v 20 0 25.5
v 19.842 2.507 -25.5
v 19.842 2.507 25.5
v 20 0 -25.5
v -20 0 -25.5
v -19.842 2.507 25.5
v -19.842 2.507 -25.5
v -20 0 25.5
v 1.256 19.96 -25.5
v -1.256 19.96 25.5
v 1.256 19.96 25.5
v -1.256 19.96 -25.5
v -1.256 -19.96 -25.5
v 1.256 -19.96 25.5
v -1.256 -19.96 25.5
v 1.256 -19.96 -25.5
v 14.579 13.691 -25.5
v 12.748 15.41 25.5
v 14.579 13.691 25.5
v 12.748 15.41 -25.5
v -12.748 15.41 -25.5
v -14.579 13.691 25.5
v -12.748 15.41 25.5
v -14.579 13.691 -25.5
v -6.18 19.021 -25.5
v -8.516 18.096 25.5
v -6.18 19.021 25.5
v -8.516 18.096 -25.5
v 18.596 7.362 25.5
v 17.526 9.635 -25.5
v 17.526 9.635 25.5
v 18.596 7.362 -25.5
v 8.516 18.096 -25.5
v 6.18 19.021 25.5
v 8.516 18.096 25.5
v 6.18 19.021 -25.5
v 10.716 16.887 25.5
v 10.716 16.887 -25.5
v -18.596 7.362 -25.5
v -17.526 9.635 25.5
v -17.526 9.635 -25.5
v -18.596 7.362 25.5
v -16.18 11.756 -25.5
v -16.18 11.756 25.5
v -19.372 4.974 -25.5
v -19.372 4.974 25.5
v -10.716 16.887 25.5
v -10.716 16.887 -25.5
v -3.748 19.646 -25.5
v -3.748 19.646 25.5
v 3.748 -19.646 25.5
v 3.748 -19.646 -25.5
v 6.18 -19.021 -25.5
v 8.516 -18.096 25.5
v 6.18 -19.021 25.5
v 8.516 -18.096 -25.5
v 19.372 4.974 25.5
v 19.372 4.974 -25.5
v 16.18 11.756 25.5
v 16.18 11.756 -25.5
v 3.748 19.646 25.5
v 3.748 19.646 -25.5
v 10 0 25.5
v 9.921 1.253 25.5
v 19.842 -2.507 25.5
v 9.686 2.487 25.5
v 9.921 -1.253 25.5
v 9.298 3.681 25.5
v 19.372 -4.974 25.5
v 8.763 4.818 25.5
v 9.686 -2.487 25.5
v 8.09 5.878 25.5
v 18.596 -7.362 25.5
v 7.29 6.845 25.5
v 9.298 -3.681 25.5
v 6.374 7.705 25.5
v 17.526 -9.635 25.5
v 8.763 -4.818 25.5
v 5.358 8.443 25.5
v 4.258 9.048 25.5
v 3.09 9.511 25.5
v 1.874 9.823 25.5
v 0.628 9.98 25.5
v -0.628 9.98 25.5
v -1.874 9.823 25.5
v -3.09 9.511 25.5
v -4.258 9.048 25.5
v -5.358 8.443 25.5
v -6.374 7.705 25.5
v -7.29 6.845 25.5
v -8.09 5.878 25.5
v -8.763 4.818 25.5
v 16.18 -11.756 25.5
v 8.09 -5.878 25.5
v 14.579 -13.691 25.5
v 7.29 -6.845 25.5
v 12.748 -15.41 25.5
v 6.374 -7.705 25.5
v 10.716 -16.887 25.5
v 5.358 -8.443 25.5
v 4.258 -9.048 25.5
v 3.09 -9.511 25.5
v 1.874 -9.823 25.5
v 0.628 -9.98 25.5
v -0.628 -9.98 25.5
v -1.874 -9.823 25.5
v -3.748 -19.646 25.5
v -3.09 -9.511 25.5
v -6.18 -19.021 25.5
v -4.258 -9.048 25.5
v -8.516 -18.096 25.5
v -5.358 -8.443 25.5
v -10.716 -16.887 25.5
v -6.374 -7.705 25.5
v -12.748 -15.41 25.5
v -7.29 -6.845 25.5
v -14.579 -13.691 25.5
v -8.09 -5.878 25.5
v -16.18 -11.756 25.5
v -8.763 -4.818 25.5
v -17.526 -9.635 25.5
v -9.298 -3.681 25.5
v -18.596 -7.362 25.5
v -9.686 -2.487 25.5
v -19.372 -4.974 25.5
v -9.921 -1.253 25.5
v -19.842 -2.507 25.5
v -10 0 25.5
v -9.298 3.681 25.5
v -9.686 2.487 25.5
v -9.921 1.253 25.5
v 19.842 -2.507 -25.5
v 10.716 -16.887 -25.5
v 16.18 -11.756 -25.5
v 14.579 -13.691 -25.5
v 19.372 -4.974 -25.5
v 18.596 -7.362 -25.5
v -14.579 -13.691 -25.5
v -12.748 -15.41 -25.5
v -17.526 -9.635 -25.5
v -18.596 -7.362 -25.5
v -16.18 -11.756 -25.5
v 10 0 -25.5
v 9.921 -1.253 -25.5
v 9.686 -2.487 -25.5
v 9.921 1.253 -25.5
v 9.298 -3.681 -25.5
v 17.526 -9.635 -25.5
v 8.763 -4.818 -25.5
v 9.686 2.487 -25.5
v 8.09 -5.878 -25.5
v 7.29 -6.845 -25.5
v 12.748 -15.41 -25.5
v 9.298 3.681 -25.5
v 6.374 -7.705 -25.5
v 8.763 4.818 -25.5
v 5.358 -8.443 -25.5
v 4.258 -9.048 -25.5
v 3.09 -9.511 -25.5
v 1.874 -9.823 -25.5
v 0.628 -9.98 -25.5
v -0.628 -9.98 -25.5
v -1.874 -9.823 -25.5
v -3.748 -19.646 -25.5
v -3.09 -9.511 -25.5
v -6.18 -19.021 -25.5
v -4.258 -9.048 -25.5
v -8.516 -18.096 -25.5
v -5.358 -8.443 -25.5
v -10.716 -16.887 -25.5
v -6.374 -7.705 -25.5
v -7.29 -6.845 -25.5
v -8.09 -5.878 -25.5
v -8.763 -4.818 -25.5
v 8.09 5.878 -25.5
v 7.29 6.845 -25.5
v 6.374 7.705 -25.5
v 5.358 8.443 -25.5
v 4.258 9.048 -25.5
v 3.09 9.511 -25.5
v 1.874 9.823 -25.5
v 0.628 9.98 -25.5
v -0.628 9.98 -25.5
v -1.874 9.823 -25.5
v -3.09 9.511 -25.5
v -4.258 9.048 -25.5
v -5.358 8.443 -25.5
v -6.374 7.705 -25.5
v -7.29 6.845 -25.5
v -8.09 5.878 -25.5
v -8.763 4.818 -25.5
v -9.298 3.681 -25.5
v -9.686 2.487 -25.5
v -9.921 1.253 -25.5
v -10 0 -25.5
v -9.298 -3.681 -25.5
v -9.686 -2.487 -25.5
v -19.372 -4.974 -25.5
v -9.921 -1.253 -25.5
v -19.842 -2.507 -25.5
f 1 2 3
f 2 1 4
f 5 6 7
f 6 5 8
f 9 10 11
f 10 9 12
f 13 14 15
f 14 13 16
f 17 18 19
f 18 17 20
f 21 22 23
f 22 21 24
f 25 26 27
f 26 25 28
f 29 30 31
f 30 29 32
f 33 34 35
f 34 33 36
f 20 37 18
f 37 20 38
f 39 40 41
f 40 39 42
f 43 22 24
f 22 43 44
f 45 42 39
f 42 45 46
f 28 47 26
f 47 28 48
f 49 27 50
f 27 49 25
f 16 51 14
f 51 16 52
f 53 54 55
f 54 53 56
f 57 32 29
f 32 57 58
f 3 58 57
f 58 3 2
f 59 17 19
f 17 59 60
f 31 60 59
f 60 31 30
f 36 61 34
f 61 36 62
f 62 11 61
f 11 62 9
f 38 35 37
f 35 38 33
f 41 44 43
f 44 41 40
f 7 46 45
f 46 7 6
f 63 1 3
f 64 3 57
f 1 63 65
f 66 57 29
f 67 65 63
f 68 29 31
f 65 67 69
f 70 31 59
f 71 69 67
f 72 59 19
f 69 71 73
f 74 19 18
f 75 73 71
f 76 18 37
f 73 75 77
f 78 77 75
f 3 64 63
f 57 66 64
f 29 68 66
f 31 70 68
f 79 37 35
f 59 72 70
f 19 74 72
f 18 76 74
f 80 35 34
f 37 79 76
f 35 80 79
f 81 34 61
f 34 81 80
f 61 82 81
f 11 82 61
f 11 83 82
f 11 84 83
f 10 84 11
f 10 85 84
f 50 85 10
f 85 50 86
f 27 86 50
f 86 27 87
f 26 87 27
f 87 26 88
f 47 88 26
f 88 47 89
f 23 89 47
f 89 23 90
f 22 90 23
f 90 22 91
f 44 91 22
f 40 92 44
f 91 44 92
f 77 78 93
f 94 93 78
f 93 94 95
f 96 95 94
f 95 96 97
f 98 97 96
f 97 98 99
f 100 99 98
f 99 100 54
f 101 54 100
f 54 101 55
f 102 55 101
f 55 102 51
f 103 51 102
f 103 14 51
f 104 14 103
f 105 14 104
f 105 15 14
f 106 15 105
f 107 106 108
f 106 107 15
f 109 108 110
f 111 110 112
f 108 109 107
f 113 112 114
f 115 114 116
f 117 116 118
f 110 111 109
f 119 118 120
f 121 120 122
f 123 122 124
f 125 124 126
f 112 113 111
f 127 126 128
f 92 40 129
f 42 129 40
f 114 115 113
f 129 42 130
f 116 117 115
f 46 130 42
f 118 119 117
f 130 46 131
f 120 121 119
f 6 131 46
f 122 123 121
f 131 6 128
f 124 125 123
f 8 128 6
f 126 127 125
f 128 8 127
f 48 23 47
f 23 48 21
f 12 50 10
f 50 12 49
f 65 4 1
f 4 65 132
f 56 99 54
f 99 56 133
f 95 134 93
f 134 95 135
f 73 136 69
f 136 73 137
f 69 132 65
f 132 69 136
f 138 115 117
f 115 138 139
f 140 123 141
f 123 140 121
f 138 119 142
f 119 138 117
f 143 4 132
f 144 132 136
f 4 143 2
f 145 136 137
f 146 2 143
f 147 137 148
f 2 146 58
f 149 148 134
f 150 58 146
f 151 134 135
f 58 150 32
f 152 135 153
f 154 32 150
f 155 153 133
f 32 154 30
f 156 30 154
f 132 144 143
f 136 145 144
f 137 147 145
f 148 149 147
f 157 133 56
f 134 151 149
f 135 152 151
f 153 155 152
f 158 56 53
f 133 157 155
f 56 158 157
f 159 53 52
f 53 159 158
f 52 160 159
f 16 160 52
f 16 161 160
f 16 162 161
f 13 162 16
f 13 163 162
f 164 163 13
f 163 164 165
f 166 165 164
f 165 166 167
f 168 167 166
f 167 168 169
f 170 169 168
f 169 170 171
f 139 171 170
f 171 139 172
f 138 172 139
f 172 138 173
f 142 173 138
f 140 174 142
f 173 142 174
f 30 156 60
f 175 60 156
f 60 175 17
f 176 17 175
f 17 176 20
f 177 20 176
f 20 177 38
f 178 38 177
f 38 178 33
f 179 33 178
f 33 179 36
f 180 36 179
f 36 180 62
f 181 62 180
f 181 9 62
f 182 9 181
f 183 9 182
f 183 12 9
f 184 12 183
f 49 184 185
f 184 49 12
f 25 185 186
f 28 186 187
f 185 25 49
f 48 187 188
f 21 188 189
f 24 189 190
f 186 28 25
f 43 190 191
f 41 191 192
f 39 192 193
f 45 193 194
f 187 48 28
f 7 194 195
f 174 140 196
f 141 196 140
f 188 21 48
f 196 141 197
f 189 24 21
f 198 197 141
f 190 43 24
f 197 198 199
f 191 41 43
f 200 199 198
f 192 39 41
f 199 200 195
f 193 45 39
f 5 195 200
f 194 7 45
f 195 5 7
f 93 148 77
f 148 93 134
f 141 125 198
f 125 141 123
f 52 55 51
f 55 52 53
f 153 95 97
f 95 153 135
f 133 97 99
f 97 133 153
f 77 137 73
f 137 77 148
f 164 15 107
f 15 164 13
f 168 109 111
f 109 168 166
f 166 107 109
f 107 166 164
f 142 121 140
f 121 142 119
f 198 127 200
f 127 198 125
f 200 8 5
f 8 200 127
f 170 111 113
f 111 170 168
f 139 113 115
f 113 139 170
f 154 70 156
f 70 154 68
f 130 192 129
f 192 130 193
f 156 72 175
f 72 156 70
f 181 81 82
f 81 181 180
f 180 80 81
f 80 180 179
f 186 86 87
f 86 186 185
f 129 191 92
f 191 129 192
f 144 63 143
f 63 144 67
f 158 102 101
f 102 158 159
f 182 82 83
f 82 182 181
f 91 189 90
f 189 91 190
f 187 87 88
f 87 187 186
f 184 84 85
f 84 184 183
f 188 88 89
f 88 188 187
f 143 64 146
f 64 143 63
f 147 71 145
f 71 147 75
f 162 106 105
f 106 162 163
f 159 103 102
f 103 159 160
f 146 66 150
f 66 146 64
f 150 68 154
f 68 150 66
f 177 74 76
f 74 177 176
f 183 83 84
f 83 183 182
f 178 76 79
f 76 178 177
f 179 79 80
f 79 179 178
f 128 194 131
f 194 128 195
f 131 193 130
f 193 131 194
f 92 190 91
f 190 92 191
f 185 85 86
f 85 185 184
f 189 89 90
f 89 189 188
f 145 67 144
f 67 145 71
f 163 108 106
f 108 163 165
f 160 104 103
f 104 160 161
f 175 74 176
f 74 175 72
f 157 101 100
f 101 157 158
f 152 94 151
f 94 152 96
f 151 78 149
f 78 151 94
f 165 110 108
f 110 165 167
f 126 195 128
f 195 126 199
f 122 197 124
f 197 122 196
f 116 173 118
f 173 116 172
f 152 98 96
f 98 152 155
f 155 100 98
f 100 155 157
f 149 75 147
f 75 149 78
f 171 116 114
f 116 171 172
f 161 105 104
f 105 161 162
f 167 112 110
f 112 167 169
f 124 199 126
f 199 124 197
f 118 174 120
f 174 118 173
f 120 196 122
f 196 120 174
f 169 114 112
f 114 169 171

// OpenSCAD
$fn = 50;


difference() {
	union() {
		translate(v = [0, 0, -25.5000000000]) {
			cylinder(h = 51, r = 20.0000000000);
		}
	}
	union() {
		translate(v = [0, 0, -100.0000000000]) {
			cylinder(h = 200, r = 10);
		}
	}
}
